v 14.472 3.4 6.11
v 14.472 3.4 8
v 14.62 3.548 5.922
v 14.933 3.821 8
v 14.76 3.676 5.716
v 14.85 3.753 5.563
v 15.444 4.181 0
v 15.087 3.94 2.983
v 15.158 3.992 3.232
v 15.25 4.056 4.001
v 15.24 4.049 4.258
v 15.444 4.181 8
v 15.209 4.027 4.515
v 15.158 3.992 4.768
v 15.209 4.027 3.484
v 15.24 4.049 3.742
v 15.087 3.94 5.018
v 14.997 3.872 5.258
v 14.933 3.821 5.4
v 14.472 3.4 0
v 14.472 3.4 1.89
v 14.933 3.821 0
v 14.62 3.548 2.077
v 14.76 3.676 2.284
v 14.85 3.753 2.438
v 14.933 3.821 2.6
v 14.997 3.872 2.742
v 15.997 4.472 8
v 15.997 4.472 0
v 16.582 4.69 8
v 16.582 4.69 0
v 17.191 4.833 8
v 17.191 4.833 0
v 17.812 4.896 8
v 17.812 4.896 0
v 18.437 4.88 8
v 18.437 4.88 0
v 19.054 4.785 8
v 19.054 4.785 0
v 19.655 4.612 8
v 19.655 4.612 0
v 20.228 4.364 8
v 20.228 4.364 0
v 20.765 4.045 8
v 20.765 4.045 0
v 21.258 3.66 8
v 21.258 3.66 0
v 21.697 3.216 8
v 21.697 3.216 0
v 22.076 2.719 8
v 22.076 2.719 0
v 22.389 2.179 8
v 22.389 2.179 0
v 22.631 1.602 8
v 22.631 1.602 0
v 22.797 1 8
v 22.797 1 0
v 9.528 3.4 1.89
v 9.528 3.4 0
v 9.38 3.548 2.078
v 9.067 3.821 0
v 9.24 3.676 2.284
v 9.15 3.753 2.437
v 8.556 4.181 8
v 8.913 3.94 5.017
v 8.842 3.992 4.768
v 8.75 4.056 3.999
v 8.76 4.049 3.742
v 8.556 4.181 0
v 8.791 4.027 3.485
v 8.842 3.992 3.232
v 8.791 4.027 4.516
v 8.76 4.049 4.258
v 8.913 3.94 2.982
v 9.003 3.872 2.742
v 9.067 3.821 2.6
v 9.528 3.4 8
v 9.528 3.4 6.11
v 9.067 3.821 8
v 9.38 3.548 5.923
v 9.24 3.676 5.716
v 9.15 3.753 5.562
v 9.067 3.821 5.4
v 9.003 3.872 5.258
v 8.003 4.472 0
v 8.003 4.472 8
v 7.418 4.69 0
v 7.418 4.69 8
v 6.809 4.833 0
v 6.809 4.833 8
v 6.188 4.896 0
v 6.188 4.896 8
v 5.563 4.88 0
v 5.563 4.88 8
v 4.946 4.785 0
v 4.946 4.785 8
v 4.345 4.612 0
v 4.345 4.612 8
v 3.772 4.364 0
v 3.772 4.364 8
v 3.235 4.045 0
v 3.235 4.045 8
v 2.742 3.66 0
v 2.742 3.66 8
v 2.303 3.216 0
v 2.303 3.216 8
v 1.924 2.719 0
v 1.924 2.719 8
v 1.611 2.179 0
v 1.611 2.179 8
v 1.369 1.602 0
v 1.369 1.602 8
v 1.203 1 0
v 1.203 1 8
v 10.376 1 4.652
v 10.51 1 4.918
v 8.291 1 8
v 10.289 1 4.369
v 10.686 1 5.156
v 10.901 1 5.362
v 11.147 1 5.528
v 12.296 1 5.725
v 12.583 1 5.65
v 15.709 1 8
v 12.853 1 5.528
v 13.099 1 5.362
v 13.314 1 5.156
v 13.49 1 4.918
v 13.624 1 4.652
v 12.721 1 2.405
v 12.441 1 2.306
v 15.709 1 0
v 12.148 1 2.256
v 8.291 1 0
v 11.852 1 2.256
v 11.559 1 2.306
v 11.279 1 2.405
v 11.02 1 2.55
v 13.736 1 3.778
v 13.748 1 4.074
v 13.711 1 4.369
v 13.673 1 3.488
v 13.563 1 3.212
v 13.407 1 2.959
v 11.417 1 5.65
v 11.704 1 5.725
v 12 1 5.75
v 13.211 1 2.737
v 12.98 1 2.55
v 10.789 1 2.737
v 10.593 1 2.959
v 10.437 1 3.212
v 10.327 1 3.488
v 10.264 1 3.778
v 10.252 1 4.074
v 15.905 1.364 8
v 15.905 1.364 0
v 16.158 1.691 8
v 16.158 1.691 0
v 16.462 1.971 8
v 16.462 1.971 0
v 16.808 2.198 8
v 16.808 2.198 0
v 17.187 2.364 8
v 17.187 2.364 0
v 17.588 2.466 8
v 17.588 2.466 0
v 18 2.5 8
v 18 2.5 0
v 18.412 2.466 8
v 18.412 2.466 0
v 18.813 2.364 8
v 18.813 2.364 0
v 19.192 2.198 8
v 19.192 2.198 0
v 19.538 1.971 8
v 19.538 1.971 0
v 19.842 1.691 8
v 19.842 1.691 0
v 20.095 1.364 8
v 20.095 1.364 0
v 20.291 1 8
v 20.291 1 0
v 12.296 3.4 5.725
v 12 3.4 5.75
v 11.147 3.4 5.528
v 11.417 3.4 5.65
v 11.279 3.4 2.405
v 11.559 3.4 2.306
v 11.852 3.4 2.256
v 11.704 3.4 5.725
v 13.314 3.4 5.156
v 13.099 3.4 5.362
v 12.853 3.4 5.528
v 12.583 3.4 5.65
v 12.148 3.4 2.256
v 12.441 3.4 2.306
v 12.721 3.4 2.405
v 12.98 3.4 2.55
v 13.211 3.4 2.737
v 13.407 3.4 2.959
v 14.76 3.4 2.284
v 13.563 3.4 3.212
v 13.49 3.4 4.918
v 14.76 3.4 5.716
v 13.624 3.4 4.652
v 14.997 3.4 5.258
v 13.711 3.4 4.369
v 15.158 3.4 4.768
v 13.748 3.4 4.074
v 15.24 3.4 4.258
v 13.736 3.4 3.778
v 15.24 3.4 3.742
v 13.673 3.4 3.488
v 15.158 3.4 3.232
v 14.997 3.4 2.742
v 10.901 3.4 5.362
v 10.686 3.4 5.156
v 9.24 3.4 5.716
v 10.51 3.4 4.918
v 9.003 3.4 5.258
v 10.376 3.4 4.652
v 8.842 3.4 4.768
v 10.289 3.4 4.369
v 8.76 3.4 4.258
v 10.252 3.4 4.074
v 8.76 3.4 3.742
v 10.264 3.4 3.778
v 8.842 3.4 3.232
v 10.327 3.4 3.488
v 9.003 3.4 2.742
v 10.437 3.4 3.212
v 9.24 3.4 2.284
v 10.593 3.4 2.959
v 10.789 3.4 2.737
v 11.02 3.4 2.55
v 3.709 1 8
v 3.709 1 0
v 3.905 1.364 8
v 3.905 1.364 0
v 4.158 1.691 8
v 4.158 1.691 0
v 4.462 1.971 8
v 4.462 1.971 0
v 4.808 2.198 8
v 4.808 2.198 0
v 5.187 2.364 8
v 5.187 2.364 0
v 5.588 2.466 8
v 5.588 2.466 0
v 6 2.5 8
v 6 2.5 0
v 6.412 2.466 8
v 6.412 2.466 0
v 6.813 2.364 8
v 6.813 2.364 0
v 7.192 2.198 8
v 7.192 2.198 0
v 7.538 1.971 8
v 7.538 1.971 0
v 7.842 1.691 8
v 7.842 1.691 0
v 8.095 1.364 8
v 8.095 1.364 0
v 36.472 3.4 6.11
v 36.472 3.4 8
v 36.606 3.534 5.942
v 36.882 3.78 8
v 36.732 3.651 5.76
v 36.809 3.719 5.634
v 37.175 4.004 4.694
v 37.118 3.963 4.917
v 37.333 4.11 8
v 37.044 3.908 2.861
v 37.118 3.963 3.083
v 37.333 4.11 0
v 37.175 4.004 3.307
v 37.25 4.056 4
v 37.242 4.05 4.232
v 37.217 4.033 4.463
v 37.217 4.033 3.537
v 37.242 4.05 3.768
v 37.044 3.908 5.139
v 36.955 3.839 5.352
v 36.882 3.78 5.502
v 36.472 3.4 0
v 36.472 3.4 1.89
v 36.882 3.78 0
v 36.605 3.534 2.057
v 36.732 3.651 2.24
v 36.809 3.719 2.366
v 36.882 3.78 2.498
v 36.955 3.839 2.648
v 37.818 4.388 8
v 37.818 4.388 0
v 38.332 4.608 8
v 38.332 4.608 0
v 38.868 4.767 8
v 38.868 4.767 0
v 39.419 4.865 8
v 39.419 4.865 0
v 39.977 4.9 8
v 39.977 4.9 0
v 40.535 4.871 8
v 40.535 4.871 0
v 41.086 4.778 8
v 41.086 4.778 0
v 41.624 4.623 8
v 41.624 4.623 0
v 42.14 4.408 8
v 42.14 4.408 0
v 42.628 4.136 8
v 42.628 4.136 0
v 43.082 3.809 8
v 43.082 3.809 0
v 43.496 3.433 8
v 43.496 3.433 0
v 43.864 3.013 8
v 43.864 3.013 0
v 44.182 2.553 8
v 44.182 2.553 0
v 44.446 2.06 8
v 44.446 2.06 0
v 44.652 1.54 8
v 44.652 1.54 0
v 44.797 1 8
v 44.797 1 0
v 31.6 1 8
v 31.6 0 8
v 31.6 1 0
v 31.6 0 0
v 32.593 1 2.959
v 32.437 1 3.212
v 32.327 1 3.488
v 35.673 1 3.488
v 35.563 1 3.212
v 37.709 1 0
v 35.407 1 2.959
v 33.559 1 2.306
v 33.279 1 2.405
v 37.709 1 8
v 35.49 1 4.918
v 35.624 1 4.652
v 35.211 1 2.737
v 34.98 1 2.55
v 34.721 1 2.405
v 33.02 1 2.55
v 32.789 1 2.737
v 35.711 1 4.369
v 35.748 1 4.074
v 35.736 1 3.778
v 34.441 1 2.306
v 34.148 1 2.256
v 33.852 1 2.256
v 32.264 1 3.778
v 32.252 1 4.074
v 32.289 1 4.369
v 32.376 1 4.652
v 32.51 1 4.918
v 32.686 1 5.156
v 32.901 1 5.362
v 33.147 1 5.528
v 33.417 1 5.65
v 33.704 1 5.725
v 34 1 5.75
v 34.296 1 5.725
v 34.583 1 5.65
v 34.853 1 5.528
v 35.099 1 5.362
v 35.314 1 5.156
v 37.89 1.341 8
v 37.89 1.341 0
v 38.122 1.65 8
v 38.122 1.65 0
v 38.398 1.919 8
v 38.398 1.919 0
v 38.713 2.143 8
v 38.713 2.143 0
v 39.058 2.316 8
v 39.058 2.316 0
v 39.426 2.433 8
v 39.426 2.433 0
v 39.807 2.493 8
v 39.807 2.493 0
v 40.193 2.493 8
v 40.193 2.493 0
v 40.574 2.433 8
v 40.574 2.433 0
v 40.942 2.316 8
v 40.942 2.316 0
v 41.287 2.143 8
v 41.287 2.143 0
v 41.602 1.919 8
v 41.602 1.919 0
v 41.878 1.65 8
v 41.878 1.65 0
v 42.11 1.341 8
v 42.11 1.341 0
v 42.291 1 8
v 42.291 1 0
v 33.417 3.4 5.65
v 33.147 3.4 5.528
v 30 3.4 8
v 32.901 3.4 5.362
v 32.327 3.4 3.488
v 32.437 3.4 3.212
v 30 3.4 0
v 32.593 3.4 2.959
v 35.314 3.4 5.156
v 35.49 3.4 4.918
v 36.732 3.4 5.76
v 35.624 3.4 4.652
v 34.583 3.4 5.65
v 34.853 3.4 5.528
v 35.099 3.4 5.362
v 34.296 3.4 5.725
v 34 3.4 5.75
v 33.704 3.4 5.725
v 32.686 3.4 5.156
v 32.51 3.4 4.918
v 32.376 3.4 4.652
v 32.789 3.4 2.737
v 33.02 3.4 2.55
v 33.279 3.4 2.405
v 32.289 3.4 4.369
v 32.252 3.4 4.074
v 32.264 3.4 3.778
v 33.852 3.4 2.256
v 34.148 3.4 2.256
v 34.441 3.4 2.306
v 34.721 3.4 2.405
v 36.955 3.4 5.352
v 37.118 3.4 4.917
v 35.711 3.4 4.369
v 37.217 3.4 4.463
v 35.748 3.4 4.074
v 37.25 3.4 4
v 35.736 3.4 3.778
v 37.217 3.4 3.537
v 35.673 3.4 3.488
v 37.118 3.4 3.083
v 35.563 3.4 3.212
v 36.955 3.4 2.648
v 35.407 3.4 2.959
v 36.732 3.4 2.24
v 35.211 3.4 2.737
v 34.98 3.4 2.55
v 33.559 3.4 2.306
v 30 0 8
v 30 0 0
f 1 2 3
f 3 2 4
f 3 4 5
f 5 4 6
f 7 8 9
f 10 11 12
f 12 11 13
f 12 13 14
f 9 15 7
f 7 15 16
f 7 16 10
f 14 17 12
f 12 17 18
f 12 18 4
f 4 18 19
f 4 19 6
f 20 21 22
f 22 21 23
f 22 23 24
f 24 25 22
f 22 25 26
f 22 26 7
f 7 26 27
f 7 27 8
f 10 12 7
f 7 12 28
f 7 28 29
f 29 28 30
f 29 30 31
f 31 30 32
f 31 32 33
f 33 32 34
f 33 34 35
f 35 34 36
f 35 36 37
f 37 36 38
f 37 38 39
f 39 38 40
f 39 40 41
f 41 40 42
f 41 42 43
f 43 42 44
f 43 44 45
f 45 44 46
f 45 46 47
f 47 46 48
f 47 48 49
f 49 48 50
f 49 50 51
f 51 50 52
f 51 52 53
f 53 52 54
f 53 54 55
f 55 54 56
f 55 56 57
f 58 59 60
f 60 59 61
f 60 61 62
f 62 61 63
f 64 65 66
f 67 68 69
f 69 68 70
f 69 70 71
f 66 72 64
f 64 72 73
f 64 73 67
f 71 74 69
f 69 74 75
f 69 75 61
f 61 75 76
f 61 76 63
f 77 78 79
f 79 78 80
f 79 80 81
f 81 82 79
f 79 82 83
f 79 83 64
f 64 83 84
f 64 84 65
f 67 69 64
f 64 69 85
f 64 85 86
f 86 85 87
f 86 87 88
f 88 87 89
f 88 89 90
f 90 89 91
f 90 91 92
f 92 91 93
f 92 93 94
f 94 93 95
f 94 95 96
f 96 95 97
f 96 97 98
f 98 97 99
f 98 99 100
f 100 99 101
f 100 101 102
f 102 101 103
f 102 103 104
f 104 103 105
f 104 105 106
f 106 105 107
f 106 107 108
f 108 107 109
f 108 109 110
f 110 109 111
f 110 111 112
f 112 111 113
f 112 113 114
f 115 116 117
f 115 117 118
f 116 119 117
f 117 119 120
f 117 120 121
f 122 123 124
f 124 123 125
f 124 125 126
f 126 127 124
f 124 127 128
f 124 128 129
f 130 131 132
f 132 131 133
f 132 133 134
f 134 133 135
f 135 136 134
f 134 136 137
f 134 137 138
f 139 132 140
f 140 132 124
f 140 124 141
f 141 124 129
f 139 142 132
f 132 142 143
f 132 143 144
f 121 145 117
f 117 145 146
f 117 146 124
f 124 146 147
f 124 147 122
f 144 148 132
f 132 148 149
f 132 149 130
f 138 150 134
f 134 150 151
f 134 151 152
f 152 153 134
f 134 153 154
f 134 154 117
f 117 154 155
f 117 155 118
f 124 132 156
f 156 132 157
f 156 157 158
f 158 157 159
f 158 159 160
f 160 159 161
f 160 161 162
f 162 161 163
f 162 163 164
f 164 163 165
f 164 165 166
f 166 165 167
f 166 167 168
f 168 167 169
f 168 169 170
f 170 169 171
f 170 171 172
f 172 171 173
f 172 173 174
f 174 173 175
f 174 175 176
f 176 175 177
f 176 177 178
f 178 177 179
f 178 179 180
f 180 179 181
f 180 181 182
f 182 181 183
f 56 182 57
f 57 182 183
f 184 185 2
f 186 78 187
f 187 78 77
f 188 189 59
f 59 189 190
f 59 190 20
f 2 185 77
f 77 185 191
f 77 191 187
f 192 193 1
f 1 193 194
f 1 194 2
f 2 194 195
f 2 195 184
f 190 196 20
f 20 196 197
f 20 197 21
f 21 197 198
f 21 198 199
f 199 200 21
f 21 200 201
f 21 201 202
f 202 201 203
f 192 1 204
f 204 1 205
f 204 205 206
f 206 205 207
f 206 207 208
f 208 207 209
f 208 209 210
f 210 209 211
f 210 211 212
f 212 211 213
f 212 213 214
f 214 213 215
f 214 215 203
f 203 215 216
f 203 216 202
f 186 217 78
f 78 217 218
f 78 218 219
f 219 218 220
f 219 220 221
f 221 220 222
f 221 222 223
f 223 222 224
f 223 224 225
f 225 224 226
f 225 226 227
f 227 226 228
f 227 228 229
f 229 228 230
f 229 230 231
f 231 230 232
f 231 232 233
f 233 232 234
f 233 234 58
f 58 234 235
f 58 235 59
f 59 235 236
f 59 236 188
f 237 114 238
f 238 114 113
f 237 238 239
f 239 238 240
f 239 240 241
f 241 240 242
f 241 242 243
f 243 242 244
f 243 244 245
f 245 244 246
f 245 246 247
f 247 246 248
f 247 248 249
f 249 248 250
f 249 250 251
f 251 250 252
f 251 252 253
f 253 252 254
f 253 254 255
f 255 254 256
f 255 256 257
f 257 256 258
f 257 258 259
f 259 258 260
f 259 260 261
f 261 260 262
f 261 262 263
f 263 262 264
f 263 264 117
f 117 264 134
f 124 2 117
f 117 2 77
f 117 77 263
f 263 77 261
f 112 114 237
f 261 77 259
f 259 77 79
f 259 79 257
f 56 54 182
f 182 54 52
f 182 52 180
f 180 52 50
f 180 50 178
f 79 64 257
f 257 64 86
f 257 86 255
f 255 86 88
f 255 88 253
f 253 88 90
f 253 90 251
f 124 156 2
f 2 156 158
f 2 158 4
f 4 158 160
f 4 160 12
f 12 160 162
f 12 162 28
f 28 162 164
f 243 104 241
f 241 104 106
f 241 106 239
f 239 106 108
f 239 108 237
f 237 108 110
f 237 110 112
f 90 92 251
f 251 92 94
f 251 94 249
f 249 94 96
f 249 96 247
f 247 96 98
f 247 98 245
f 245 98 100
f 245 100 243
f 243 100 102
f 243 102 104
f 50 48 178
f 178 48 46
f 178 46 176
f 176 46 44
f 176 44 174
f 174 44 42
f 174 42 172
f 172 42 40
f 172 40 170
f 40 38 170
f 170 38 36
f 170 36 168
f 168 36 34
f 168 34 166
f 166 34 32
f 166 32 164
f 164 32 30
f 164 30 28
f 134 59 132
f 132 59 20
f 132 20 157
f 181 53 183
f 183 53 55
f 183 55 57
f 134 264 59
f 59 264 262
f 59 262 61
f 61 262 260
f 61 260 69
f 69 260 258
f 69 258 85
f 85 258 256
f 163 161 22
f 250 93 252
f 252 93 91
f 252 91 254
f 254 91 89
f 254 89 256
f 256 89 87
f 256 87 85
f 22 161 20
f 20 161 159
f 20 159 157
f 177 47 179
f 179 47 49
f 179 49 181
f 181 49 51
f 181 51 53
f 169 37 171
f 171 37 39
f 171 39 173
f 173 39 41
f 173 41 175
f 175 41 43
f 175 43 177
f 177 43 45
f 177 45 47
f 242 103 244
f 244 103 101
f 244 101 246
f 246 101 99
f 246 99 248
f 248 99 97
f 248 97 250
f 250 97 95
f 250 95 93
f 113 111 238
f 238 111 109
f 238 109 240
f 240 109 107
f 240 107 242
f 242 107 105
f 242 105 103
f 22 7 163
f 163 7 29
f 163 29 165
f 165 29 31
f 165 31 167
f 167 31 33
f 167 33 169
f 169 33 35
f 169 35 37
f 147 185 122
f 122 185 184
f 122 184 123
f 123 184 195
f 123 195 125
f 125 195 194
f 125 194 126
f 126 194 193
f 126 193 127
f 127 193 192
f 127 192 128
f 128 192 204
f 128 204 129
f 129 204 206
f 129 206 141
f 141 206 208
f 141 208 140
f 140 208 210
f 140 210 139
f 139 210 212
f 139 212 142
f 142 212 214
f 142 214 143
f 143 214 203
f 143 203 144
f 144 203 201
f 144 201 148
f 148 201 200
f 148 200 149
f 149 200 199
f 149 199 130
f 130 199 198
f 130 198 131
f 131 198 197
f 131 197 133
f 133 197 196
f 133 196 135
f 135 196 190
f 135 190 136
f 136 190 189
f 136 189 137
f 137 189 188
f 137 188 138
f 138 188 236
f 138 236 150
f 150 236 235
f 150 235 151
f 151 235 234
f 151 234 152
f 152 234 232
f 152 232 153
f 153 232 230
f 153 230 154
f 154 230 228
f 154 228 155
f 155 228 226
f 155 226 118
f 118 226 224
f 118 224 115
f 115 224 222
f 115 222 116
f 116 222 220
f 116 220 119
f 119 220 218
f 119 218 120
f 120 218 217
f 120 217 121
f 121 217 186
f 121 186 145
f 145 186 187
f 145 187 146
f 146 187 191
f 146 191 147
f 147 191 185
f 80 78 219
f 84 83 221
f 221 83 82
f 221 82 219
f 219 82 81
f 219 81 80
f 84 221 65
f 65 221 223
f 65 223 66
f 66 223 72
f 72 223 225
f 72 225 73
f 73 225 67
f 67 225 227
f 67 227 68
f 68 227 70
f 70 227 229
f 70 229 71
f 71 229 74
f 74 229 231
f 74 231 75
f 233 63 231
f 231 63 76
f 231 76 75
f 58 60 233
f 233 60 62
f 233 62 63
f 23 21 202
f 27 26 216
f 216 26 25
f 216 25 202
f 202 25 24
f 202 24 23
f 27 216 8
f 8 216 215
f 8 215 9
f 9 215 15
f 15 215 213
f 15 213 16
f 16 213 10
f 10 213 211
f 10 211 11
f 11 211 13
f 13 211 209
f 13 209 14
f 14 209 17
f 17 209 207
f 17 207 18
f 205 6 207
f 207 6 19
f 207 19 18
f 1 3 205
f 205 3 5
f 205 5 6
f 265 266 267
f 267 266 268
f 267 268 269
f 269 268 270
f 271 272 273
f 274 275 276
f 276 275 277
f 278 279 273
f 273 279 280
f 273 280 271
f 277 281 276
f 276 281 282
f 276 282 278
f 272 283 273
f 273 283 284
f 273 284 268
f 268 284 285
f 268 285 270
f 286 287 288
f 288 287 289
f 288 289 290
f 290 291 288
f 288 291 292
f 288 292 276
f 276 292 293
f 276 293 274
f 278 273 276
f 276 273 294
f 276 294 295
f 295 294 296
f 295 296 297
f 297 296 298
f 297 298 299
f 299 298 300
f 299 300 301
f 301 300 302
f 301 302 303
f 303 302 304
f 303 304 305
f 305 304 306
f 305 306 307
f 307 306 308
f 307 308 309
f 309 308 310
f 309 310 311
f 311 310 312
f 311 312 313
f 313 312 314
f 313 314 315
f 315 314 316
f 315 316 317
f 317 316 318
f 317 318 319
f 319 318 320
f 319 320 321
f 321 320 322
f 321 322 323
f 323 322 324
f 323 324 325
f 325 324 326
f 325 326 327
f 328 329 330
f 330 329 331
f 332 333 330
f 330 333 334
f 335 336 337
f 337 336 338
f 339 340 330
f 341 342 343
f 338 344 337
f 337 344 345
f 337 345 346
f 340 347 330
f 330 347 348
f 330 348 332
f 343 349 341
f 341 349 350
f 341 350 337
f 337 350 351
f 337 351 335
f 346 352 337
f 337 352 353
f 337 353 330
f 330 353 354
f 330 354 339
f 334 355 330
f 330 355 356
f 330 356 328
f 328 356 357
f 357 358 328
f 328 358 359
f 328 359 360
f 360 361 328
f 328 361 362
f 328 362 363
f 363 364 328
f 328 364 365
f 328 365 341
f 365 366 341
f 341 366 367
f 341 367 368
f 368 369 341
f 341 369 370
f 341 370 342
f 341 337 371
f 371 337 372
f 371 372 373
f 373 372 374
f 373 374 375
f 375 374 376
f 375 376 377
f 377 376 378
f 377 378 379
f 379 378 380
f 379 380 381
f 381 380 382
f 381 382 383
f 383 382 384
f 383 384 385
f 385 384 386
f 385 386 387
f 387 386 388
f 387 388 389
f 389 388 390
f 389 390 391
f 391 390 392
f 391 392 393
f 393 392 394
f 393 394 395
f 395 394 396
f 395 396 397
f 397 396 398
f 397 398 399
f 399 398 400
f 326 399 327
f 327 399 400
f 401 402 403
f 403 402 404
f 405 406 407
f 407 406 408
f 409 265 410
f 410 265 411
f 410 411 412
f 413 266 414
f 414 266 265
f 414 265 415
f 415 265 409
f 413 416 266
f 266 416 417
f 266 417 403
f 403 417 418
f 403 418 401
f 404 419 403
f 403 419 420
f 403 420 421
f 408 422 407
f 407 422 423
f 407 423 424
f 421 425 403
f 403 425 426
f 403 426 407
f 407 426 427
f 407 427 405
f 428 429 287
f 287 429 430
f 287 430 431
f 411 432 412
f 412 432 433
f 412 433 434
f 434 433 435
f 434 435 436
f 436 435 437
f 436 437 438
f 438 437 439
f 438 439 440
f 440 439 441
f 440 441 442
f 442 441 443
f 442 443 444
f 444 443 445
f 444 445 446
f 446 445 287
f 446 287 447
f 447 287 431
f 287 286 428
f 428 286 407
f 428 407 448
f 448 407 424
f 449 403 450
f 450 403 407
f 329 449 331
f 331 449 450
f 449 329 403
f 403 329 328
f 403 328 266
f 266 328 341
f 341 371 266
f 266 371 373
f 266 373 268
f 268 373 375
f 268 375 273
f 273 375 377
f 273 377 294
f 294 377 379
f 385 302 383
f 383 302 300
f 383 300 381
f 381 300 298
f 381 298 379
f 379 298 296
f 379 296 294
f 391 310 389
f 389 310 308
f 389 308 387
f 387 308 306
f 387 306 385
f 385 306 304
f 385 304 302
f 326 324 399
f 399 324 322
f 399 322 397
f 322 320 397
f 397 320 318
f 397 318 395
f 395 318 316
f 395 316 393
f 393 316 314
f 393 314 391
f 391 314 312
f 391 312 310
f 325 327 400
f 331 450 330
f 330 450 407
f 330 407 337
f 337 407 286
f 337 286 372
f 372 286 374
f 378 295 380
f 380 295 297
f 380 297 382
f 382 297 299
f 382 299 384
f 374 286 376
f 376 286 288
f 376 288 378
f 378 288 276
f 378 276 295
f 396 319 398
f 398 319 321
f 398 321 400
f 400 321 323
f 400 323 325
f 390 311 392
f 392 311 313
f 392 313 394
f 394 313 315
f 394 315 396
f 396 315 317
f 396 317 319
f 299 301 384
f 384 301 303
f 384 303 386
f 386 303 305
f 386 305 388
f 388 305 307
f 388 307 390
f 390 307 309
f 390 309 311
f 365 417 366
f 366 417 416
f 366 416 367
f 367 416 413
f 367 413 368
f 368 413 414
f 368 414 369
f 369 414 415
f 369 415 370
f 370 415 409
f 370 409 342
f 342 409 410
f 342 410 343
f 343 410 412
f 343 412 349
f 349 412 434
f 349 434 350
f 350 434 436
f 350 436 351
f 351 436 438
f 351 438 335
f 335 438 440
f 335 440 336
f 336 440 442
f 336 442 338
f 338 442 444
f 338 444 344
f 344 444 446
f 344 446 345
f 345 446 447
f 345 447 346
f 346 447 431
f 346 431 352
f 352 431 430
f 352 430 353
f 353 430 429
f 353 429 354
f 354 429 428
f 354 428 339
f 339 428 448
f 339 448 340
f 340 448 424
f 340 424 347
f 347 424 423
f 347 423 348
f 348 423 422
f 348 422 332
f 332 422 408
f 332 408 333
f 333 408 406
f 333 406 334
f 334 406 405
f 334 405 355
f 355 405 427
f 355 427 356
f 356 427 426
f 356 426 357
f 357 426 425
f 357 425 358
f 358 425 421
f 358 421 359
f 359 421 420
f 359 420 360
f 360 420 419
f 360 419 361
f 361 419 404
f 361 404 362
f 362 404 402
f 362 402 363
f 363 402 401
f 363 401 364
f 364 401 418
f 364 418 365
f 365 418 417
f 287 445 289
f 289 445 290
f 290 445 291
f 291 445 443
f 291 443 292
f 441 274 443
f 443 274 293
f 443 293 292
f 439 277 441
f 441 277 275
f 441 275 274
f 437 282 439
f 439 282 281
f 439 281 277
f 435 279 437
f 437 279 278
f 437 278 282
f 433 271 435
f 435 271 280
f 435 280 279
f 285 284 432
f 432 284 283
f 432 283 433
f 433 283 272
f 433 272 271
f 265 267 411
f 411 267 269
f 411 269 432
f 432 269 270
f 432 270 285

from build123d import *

# Parameters (mm, degrees)
SKICA1_W                 = 1.6
SKICA1_H                 = 1
P_IDAT_VYSUNUT_M1_DEPTH  = 8
SKICA2_R                 = 1.75
ODEBRAT_VYSUNUT_M1_DEPTH = 8
SKICA3_R                 = 3.25
ODEBRAT_VYSUNUT_M2_DEPTH = 8


with BuildPart() as part:
    # Skica1 → Přidat vysunutím1 (new body)
    with BuildSketch(Plane.XY):
        with BuildLine():
            Line((8.291287847, 1), (10.796873982, 1))
            ThreePointArc((10.796873982, 1), (10.332179451, 2.289589745), (9.528455753, 3.4))
            Line((9.528455753, 3.4), (2.471544247, 3.4))
            ThreePointArc((2.471544247, 3.4), (1.667820549, 2.289589745), (1.203126018, 1))
            Line((1.203126018, 1), (3.708712153, 1))
            ThreePointArc((3.708712153, 1), (6, 2.5), (8.291287847, 1))
        make_face()
        with BuildLine():
            Line((2.471544247, 3.4), (9.528455753, 3.4))
            ThreePointArc((9.528455753, 3.4), (6, 4.9), (2.471544247, 3.4))
        make_face()
        with BuildLine():
            Line((10.796873982, 1), (13.203126018, 1))
            ThreePointArc((13.203126018, 1), (13.667820549, 2.289589745), (14.471544247, 3.4))
            Line((14.471544247, 3.4), (9.528455753, 3.4))
            ThreePointArc((9.528455753, 3.4), (10.332179451, 2.289589745), (10.796873982, 1))
        make_face()
        with BuildLine():
            Line((20.291287847, 1), (22.796873982, 1))
            ThreePointArc((22.796873982, 1), (22.332179451, 2.289589745), (21.528455753, 3.4))
            Line((21.528455753, 3.4), (14.471544247, 3.4))
            ThreePointArc((14.471544247, 3.4), (13.667820549, 2.289589745), (13.203126018, 1))
            Line((13.203126018, 1), (15.708712153, 1))
            ThreePointArc((15.708712153, 1), (18, 2.5), (20.291287847, 1))
        make_face()
        with BuildLine():
            Line((14.471544247, 3.4), (21.528455753, 3.4))
            ThreePointArc((21.528455753, 3.4), (18, 4.9), (14.471544247, 3.4))
        make_face()
        with Locations((30.8, 0.5)):
            Rectangle(SKICA1_W, SKICA1_H)
        with BuildLine():
            Line((30, 3.4), (30, 1))
            Line((30, 1), (31.6, 1))
            Line((31.6, 1), (35.203126018, 1))
            ThreePointArc((35.203126018, 1), (35.667820549, 2.289589745), (36.471544247, 3.4))
            Line((36.471544247, 3.4), (30, 3.4))
        make_face()
        with BuildLine():
            ThreePointArc((36.471544247, 3.4), (35.667820549, 2.289589745), (35.203126018, 1))
            Line((35.203126018, 1), (37.708712153, 1))
            ThreePointArc((37.708712153, 1), (40, 2.5), (42.291287847, 1))
            Line((42.291287847, 1), (44.796873982, 1))
            ThreePointArc((44.796873982, 1), (44.332179451, 2.289589745), (43.528455753, 3.4))
            Line((43.528455753, 3.4), (36.471544247, 3.4))
        make_face()
        with BuildLine():
            ThreePointArc((43.528455753, 3.4), (40, 4.9), (36.471544247, 3.4))
            Line((36.471544247, 3.4), (43.528455753, 3.4))
        make_face()
    extrude(amount=P_IDAT_VYSUNUT_M1_DEPTH)

    # Skica2 → Odebrat vysunutím1 (cut)
    with BuildSketch(Plane(origin=(0, 3.4, 0), x_dir=(1, 0, 0), z_dir=(0, 1, 0))):
        with Locations(Location((12, -4, 0), (0, 0, 270))):
            Circle(SKICA2_R)
        with Locations(Location((34, -4, 0), (0, 0, 270))):
            Circle(SKICA2_R)
    extrude(amount=-ODEBRAT_VYSUNUT_M1_DEPTH, mode=Mode.SUBTRACT)

    # Skica3 → Odebrat vysunutím2 (cut)
    with BuildSketch(Plane(origin=(0, 3.4, 0), x_dir=(1, 0, 0), z_dir=(0, 1, 0))):
        with Locations((12, -4)):
            Circle(SKICA3_R)
        with Locations((34, -4)):
            Circle(SKICA3_R)
    extrude(amount=ODEBRAT_VYSUNUT_M2_DEPTH, mode=Mode.SUBTRACT)


solid = part.part
